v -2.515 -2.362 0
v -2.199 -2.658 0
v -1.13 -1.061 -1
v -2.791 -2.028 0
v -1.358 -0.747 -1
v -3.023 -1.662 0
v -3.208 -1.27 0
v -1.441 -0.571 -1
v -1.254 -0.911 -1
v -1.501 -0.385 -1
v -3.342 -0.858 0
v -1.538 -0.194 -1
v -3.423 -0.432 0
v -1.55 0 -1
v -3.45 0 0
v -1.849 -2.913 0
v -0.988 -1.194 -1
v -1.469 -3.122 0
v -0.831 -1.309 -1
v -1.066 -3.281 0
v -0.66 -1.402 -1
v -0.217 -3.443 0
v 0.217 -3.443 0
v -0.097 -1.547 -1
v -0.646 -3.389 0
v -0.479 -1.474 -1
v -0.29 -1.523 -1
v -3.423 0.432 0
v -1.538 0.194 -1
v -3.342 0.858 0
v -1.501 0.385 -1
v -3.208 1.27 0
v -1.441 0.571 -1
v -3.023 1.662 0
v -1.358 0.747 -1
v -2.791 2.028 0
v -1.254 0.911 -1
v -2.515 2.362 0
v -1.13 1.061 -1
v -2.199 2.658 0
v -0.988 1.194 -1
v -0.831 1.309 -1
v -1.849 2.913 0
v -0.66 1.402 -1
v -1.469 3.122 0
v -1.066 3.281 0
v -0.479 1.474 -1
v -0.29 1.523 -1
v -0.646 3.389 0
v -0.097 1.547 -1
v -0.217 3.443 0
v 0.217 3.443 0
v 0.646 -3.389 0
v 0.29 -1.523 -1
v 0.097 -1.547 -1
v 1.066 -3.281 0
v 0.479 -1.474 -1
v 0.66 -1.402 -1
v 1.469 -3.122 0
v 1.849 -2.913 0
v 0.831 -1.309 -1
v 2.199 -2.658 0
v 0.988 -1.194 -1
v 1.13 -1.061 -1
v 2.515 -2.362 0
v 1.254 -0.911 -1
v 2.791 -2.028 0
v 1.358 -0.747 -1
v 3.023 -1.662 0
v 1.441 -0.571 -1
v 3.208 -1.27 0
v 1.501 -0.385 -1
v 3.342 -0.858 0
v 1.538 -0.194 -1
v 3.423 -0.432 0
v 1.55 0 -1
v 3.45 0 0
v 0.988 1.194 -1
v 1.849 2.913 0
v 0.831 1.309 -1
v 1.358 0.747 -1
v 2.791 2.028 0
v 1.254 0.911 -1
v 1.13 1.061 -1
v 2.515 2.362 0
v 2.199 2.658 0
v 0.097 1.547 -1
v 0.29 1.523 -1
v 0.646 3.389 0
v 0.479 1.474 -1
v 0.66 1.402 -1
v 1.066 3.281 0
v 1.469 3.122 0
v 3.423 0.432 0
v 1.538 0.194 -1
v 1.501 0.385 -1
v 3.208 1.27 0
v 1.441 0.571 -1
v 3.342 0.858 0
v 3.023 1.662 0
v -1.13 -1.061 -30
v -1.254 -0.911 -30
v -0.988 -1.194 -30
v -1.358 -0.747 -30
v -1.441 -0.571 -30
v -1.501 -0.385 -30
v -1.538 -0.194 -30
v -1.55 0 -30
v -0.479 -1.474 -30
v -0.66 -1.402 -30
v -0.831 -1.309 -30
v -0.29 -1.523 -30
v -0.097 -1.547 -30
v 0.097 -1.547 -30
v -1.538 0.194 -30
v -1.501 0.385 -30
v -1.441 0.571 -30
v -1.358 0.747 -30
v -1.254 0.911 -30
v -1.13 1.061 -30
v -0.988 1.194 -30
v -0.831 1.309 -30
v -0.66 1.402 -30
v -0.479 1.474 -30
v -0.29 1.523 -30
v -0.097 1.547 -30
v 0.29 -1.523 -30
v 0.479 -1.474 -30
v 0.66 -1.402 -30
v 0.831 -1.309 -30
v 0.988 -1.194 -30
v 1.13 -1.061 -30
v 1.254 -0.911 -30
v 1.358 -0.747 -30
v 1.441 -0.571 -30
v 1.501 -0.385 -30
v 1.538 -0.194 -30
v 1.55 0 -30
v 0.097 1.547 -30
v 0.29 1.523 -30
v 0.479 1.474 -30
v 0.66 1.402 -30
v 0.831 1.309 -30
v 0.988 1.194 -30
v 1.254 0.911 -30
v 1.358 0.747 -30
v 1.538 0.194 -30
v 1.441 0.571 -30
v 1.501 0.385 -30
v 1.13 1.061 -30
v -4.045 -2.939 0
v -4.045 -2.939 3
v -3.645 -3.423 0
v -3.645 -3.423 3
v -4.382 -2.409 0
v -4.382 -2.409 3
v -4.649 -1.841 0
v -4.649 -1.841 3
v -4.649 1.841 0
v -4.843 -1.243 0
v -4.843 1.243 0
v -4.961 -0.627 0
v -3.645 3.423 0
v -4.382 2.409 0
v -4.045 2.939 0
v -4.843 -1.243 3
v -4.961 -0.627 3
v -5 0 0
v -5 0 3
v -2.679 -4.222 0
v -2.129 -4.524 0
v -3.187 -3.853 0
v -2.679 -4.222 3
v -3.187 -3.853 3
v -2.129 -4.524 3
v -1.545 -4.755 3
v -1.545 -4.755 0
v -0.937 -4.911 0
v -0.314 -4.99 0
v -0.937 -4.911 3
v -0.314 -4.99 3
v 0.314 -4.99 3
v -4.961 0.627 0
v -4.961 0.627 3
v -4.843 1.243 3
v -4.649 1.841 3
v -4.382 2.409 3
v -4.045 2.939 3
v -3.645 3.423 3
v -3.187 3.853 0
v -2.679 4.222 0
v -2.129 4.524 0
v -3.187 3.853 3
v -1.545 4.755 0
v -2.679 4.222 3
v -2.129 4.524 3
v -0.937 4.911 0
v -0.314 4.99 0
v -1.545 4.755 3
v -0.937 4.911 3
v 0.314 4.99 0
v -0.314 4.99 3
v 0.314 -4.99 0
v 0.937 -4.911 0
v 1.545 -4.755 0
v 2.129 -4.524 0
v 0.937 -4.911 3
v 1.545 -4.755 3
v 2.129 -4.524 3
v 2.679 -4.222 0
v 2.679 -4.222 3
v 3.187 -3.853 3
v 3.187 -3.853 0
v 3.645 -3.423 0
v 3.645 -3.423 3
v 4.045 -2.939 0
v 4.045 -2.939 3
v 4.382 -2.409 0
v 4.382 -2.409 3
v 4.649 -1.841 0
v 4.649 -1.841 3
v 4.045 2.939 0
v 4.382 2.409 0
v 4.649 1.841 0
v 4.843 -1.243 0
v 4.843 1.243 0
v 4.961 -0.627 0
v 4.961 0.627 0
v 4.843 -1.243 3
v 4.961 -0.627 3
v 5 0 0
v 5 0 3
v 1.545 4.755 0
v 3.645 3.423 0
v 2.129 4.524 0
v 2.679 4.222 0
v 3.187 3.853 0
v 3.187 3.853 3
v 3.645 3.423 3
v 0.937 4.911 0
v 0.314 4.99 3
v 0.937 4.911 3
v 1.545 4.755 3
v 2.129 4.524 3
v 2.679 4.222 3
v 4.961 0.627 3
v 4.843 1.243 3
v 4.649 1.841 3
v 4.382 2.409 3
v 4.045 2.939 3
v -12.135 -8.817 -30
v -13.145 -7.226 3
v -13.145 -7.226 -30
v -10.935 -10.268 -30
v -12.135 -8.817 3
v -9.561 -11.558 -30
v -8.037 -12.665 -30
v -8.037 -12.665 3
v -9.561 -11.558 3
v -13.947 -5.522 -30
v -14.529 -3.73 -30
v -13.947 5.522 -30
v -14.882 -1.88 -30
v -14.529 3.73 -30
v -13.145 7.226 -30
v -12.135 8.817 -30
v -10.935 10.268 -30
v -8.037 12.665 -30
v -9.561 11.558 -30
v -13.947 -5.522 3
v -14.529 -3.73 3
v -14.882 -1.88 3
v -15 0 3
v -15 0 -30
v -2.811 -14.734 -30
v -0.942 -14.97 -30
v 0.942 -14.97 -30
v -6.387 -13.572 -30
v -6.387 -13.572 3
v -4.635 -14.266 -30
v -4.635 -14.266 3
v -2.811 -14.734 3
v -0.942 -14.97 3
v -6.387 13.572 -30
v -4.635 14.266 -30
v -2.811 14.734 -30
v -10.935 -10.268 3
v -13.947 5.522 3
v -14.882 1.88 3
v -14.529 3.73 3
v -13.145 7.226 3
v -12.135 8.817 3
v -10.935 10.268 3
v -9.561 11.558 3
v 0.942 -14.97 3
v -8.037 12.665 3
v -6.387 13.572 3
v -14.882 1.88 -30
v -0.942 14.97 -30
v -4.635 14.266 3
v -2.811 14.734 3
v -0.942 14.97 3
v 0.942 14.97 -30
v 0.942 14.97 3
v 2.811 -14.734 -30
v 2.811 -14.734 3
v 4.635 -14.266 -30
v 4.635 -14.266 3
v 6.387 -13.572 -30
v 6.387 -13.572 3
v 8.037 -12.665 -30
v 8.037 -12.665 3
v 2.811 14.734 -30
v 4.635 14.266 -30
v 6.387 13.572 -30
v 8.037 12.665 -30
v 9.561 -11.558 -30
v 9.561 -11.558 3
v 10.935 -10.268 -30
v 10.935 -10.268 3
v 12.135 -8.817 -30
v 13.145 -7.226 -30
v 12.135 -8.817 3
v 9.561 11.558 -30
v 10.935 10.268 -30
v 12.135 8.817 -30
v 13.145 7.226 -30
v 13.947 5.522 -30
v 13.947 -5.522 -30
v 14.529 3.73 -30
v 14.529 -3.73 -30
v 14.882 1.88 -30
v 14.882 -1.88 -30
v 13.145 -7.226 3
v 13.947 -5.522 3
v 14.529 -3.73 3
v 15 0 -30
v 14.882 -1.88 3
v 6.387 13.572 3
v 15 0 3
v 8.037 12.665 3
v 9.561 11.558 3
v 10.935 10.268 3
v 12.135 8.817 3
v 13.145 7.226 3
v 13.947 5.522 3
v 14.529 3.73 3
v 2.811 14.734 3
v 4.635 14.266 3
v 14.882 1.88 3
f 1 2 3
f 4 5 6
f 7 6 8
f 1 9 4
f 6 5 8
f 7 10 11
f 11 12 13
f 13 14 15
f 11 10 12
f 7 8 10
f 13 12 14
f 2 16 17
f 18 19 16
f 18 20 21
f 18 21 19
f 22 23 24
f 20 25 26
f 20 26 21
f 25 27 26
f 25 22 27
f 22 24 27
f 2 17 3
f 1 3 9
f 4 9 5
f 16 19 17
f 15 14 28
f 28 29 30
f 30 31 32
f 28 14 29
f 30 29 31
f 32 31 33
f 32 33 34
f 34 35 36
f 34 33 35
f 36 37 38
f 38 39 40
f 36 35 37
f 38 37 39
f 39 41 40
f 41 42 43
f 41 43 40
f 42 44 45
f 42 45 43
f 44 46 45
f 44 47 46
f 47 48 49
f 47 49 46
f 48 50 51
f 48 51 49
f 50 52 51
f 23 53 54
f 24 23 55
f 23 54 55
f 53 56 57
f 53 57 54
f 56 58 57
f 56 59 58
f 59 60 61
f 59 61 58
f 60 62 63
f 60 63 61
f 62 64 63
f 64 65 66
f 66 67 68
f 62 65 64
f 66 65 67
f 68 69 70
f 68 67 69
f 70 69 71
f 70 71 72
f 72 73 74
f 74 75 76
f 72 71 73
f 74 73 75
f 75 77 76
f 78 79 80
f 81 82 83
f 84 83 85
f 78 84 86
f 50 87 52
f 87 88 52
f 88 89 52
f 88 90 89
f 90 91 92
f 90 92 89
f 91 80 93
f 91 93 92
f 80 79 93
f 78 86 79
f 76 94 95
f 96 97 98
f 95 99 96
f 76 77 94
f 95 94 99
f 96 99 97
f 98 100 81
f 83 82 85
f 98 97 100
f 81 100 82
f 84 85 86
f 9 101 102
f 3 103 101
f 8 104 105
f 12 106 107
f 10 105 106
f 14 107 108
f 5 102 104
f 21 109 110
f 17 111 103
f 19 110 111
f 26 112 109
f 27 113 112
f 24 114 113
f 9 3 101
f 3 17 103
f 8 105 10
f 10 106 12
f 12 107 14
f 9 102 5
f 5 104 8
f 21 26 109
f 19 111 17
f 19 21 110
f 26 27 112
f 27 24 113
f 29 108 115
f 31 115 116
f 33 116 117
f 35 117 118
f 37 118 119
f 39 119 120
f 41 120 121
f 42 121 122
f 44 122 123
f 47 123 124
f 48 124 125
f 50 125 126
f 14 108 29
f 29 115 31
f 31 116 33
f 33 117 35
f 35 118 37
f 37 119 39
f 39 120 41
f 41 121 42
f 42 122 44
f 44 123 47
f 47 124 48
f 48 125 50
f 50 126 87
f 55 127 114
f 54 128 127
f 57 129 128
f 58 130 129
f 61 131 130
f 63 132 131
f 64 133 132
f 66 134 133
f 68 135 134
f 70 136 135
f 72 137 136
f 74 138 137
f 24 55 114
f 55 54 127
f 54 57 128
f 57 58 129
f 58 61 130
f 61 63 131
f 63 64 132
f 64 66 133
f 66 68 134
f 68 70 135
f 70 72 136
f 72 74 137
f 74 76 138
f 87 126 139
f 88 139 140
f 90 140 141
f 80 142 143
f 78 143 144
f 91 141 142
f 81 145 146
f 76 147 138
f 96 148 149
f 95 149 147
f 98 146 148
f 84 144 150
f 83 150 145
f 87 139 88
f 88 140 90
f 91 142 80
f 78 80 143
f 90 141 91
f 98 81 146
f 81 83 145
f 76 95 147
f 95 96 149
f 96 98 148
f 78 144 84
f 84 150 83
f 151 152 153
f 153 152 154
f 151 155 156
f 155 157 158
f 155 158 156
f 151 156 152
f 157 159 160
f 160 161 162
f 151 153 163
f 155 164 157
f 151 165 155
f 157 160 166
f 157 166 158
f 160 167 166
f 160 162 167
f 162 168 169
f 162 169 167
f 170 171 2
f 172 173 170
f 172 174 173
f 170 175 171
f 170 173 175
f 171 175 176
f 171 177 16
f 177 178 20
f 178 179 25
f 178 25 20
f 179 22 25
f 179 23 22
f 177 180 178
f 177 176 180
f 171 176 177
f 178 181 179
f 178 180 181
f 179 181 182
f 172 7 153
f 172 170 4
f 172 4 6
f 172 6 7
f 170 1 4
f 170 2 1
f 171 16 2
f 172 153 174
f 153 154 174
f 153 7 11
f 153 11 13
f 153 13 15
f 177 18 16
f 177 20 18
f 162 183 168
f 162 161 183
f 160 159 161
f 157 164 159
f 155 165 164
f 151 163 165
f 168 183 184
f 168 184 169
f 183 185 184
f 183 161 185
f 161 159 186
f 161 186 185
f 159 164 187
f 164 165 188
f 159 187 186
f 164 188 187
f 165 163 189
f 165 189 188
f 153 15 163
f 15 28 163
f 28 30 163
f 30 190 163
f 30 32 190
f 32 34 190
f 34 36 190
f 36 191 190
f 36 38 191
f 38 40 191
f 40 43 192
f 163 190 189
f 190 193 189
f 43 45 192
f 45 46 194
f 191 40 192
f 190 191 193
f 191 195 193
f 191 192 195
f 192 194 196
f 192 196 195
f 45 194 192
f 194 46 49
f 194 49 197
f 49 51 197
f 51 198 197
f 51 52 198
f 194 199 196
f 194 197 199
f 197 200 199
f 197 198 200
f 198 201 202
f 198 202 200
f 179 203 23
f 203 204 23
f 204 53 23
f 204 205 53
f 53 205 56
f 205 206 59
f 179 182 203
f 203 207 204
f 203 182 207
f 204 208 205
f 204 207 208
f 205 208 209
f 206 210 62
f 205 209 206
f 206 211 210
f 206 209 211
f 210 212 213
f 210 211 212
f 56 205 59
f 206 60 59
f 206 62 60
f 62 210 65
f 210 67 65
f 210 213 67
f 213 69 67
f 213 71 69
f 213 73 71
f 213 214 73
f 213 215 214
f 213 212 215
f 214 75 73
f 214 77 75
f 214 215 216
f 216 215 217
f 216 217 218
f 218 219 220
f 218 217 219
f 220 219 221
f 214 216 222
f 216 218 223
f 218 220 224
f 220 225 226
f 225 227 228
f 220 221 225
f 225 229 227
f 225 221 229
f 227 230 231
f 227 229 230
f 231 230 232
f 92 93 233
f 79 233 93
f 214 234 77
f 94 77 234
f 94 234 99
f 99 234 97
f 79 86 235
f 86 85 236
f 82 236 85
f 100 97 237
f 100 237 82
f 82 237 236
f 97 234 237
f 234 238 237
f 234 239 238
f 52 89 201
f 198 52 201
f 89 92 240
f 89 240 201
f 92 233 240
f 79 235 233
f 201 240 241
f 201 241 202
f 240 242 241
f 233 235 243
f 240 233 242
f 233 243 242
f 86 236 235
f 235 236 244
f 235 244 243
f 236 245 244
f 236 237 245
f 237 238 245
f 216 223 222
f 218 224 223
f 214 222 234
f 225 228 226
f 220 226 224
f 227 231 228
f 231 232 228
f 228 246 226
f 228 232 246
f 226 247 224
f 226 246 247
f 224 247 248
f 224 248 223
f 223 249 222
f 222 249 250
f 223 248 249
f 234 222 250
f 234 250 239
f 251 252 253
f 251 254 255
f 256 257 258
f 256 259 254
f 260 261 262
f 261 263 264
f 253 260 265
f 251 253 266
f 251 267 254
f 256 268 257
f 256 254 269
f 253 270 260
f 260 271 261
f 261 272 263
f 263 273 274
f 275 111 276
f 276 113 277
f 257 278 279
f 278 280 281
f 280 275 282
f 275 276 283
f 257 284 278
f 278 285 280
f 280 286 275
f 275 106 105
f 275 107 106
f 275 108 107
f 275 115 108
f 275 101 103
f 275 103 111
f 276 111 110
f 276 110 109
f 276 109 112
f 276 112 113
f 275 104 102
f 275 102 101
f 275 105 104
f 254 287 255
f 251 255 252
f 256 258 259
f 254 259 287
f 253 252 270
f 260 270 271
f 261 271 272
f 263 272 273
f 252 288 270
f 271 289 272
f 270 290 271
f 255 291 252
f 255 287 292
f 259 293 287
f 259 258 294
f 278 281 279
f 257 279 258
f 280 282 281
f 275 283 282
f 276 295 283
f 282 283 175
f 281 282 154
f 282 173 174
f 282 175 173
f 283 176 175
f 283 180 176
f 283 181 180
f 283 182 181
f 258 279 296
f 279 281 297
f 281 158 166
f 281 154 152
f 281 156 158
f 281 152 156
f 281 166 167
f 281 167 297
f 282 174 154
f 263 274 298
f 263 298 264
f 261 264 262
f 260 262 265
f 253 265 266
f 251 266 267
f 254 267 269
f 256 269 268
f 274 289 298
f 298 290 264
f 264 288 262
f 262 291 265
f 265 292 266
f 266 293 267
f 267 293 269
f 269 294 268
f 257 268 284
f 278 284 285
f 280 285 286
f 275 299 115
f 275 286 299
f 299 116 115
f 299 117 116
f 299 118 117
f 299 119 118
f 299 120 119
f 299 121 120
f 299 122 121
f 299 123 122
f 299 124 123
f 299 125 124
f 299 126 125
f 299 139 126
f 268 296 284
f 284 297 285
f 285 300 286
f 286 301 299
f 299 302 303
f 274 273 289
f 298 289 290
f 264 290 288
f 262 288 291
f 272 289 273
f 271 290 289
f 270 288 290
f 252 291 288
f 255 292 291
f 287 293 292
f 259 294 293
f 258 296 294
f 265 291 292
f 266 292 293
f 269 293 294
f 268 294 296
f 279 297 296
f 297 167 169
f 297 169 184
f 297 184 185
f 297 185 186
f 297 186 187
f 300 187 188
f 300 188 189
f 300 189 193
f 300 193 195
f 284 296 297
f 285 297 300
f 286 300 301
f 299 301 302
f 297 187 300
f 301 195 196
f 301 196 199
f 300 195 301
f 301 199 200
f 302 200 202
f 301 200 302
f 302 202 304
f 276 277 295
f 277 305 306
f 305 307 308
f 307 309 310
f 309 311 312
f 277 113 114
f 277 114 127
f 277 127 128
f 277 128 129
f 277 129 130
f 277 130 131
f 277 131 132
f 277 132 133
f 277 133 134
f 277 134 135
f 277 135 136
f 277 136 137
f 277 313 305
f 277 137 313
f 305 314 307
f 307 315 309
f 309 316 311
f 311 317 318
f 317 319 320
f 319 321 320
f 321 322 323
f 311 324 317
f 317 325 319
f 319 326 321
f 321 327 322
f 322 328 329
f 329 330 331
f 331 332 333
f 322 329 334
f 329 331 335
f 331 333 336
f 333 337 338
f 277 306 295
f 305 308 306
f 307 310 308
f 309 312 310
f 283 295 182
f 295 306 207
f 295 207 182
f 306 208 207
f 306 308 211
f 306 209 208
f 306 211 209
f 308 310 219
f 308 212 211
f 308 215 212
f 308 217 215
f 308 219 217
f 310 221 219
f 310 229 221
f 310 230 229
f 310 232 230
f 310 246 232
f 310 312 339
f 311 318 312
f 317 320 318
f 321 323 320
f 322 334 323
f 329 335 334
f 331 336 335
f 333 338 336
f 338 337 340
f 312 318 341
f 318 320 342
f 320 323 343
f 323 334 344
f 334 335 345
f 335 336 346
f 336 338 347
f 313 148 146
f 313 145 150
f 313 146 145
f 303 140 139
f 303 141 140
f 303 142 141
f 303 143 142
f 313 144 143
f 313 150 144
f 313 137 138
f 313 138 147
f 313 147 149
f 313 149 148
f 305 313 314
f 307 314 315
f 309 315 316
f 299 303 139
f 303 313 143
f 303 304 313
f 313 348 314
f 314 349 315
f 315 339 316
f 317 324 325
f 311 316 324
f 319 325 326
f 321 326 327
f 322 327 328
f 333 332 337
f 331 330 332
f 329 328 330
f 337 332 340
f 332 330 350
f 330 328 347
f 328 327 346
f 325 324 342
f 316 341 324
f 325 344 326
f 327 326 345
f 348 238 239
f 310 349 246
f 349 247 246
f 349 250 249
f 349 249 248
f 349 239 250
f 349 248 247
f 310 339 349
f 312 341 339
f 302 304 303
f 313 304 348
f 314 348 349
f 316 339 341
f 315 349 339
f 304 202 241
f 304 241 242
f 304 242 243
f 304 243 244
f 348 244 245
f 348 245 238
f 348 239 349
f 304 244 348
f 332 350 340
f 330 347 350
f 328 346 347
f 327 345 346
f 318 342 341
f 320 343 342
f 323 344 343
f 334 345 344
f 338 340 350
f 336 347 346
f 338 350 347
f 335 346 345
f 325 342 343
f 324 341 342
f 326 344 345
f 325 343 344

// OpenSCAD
$fn = 50;


difference() {
	union() {
		translate(v = [0, 0, -30.0000000000]) {
			cylinder(h = 33, r = 15.0000000000);
		}
	}
	union() {
		translate(v = [0, 0, 0]) {
			rotate(a = [0, 0, 0]) {
				difference() {
					union() {
						translate(v = [0, 0, -33.0000000000]) {
							cylinder(h = 33, r = 1.2500000000);
						}
						translate(v = [0, 0, -1.0000000000]) {
							cylinder(h = 1.0000000000, r1 = 1.5500000000, r2 = 3.4500000000);
						}
						translate(v = [0, 0, -33.0000000000]) {
							cylinder(h = 33, r = 1.5500000000);
						}
						translate(v = [0, 0, -33.0000000000]) {
							cylinder(h = 33, r = 1.2500000000);
						}
					}
					union();
				}
			}
		}
		#cylinder(h = 3, r = 5.0000000000);
	}
}
